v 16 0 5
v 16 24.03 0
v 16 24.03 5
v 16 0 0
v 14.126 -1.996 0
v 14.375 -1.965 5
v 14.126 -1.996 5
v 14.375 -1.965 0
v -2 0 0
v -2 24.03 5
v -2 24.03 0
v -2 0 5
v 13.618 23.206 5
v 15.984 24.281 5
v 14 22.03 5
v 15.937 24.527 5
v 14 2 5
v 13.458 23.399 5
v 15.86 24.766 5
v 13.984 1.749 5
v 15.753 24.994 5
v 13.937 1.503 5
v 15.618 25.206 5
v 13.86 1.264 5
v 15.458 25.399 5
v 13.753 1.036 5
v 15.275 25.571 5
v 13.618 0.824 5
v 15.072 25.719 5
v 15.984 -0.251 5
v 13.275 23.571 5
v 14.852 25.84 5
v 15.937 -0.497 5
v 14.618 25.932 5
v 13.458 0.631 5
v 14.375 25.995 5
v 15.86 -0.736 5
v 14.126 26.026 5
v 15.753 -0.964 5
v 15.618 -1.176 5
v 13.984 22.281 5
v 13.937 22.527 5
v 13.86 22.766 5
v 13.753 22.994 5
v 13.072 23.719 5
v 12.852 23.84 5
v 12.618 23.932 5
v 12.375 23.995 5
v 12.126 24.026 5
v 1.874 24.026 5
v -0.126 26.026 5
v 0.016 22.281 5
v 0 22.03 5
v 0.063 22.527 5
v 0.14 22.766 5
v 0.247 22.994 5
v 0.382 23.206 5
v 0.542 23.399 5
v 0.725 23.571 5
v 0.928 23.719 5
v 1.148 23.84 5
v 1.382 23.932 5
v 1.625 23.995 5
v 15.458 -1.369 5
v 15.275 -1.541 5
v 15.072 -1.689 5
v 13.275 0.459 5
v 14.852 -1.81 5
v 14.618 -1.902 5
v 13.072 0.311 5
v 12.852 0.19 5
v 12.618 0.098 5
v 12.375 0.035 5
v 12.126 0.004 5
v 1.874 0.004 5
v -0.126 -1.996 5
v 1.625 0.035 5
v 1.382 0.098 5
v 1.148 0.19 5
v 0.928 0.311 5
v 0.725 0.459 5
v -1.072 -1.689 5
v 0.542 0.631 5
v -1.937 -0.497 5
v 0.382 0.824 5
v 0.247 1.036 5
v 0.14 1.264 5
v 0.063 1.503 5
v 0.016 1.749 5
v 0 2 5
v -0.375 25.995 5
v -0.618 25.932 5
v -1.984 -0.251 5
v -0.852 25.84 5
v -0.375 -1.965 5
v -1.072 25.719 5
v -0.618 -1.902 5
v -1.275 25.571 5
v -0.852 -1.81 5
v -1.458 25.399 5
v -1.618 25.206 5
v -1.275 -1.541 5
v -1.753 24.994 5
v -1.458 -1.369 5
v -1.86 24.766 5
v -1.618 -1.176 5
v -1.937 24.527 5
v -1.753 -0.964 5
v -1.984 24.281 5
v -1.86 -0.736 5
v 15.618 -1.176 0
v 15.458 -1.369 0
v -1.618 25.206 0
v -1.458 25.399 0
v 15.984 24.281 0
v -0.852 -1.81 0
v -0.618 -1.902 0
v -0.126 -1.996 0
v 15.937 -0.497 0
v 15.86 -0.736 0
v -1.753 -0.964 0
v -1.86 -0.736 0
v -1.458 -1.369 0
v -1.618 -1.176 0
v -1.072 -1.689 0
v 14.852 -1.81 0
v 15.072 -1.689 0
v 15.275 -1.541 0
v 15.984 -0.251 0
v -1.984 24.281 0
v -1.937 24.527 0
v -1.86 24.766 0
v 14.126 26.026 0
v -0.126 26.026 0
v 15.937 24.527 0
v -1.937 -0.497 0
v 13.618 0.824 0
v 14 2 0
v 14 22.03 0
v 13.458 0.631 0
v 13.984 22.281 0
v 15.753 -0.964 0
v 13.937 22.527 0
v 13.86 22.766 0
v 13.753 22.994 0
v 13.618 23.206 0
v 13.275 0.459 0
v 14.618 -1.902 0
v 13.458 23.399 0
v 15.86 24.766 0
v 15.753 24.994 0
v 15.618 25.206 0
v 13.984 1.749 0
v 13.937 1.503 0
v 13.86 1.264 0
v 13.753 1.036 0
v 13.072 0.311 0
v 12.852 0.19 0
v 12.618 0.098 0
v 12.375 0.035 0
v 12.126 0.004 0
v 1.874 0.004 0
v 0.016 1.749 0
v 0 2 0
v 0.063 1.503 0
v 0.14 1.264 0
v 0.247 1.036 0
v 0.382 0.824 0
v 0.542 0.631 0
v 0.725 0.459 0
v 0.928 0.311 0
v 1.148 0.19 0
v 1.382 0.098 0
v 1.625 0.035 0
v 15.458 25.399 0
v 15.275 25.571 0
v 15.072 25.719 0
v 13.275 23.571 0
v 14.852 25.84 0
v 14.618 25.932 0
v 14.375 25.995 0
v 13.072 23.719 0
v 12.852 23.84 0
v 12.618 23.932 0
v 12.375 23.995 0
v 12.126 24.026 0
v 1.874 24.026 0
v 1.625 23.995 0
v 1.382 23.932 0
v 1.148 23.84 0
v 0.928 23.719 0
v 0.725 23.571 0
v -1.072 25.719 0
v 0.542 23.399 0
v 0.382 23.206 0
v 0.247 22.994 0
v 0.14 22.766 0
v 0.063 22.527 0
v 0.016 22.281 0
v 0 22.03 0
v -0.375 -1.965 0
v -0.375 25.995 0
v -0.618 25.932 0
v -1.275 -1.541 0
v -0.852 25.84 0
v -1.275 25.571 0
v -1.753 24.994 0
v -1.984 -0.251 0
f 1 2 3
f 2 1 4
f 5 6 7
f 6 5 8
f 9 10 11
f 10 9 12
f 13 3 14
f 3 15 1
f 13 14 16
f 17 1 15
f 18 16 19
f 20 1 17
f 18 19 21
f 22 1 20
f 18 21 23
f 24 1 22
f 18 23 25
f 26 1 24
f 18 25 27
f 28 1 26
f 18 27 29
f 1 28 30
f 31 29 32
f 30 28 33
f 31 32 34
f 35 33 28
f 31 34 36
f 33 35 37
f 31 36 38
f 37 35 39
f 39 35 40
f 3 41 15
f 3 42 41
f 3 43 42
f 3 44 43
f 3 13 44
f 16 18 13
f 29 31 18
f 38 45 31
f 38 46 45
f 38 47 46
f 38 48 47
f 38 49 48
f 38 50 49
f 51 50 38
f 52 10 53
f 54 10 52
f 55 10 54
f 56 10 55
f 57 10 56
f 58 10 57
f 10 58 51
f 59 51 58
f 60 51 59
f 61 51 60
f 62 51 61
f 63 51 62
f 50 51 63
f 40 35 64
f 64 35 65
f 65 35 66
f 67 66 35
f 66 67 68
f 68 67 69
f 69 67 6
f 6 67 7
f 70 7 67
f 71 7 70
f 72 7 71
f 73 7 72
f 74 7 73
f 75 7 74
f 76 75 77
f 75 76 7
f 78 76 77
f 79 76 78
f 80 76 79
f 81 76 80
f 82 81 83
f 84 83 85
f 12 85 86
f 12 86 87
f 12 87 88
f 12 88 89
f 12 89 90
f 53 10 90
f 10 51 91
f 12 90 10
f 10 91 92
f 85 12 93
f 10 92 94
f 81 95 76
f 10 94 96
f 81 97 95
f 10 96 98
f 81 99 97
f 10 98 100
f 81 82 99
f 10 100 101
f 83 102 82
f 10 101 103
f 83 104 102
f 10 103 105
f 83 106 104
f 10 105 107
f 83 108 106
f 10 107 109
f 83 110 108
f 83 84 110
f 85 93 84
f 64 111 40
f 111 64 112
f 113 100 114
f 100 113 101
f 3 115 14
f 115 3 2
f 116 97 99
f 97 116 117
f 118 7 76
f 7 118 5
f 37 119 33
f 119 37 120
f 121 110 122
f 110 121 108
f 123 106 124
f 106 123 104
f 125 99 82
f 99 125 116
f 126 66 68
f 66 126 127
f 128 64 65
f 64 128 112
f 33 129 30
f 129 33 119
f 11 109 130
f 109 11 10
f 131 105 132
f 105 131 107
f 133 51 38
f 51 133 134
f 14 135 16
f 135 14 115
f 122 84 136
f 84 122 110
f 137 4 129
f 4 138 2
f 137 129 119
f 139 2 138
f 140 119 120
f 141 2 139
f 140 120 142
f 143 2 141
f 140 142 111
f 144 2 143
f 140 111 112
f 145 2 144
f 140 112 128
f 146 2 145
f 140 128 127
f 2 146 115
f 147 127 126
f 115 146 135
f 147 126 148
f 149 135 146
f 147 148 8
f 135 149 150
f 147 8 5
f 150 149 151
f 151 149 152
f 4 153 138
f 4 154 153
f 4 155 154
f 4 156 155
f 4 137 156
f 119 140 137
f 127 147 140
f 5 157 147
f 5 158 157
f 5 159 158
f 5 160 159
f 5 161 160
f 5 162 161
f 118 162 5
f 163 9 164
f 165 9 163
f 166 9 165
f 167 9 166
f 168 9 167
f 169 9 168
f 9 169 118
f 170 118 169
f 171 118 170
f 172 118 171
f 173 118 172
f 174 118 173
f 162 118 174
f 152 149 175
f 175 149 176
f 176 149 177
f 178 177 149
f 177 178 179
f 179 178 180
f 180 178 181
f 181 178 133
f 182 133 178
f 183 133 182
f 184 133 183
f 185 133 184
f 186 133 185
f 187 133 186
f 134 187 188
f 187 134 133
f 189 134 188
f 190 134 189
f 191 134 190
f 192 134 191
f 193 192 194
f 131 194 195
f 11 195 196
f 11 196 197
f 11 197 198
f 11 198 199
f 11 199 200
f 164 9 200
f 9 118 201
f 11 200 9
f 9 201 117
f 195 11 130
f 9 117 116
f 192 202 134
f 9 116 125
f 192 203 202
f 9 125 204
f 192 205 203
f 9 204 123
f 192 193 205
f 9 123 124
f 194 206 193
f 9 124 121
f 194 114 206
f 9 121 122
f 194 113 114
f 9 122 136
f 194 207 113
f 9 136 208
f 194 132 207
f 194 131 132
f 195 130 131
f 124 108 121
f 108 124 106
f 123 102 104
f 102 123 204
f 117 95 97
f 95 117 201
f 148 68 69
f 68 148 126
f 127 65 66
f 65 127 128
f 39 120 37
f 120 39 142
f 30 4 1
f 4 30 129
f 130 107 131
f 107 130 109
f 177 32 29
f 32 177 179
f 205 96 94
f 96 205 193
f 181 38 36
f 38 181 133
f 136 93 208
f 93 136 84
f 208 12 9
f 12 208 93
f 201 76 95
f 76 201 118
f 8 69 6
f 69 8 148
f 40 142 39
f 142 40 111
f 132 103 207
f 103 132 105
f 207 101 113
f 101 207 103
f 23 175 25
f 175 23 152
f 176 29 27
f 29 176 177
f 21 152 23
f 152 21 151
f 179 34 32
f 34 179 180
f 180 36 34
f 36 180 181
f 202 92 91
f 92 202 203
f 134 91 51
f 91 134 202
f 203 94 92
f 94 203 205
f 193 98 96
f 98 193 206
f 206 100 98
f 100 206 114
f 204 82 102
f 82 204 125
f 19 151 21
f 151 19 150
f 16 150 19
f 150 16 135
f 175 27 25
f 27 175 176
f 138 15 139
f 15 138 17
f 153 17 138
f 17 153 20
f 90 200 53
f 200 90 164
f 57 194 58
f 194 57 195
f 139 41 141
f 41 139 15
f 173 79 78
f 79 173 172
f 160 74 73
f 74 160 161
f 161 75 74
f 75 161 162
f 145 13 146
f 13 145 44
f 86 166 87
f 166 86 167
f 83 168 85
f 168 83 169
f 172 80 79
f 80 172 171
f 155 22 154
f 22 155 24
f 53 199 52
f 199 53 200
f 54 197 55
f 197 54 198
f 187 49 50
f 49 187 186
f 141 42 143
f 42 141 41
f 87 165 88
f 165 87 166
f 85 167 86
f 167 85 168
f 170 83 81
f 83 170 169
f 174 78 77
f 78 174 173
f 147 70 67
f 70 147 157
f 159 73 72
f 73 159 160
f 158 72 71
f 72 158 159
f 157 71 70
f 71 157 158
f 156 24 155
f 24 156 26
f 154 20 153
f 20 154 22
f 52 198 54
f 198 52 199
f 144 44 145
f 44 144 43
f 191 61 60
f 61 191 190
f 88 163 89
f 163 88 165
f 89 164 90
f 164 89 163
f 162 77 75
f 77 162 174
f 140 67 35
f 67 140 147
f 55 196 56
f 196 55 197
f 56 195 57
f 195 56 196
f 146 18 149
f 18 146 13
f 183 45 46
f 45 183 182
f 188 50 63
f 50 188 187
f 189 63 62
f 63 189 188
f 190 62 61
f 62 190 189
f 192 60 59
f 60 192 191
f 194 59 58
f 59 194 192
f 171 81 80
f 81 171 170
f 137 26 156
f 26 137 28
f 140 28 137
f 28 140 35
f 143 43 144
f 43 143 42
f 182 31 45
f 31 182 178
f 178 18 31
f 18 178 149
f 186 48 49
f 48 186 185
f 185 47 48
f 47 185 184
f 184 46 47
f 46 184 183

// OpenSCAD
cylinderHeight = 13.83;
floorThickness = 3;
innerBoxWidth = cylinderHeight + floorThickness * 2 + .2;
innerBoxLength = 10;
wrapperHeight = 5;
outerBoxThickness = 2;
difference(){
    
        $fn=50;
    minkowski()
    {
      cube([outerBoxThickness * 2 + innerBoxLength, outerBoxThickness* 2 + innerBoxWidth, wrapperHeight - 1]);
      cylinder(r=2,h=1);
    }
    
//    cube([outerBoxThickness * 2 + innerBoxLength, outerBoxThickness* 2 + innerBoxWidth, wrapperHeight]);
     $fn=50;
    translate([outerBoxThickness,outerBoxThickness,0])
        minkowski()
        {
          cube([innerBoxLength,innerBoxWidth, wrapperHeight]);
          cylinder(r=2,h=1);
        }
    
        
}
